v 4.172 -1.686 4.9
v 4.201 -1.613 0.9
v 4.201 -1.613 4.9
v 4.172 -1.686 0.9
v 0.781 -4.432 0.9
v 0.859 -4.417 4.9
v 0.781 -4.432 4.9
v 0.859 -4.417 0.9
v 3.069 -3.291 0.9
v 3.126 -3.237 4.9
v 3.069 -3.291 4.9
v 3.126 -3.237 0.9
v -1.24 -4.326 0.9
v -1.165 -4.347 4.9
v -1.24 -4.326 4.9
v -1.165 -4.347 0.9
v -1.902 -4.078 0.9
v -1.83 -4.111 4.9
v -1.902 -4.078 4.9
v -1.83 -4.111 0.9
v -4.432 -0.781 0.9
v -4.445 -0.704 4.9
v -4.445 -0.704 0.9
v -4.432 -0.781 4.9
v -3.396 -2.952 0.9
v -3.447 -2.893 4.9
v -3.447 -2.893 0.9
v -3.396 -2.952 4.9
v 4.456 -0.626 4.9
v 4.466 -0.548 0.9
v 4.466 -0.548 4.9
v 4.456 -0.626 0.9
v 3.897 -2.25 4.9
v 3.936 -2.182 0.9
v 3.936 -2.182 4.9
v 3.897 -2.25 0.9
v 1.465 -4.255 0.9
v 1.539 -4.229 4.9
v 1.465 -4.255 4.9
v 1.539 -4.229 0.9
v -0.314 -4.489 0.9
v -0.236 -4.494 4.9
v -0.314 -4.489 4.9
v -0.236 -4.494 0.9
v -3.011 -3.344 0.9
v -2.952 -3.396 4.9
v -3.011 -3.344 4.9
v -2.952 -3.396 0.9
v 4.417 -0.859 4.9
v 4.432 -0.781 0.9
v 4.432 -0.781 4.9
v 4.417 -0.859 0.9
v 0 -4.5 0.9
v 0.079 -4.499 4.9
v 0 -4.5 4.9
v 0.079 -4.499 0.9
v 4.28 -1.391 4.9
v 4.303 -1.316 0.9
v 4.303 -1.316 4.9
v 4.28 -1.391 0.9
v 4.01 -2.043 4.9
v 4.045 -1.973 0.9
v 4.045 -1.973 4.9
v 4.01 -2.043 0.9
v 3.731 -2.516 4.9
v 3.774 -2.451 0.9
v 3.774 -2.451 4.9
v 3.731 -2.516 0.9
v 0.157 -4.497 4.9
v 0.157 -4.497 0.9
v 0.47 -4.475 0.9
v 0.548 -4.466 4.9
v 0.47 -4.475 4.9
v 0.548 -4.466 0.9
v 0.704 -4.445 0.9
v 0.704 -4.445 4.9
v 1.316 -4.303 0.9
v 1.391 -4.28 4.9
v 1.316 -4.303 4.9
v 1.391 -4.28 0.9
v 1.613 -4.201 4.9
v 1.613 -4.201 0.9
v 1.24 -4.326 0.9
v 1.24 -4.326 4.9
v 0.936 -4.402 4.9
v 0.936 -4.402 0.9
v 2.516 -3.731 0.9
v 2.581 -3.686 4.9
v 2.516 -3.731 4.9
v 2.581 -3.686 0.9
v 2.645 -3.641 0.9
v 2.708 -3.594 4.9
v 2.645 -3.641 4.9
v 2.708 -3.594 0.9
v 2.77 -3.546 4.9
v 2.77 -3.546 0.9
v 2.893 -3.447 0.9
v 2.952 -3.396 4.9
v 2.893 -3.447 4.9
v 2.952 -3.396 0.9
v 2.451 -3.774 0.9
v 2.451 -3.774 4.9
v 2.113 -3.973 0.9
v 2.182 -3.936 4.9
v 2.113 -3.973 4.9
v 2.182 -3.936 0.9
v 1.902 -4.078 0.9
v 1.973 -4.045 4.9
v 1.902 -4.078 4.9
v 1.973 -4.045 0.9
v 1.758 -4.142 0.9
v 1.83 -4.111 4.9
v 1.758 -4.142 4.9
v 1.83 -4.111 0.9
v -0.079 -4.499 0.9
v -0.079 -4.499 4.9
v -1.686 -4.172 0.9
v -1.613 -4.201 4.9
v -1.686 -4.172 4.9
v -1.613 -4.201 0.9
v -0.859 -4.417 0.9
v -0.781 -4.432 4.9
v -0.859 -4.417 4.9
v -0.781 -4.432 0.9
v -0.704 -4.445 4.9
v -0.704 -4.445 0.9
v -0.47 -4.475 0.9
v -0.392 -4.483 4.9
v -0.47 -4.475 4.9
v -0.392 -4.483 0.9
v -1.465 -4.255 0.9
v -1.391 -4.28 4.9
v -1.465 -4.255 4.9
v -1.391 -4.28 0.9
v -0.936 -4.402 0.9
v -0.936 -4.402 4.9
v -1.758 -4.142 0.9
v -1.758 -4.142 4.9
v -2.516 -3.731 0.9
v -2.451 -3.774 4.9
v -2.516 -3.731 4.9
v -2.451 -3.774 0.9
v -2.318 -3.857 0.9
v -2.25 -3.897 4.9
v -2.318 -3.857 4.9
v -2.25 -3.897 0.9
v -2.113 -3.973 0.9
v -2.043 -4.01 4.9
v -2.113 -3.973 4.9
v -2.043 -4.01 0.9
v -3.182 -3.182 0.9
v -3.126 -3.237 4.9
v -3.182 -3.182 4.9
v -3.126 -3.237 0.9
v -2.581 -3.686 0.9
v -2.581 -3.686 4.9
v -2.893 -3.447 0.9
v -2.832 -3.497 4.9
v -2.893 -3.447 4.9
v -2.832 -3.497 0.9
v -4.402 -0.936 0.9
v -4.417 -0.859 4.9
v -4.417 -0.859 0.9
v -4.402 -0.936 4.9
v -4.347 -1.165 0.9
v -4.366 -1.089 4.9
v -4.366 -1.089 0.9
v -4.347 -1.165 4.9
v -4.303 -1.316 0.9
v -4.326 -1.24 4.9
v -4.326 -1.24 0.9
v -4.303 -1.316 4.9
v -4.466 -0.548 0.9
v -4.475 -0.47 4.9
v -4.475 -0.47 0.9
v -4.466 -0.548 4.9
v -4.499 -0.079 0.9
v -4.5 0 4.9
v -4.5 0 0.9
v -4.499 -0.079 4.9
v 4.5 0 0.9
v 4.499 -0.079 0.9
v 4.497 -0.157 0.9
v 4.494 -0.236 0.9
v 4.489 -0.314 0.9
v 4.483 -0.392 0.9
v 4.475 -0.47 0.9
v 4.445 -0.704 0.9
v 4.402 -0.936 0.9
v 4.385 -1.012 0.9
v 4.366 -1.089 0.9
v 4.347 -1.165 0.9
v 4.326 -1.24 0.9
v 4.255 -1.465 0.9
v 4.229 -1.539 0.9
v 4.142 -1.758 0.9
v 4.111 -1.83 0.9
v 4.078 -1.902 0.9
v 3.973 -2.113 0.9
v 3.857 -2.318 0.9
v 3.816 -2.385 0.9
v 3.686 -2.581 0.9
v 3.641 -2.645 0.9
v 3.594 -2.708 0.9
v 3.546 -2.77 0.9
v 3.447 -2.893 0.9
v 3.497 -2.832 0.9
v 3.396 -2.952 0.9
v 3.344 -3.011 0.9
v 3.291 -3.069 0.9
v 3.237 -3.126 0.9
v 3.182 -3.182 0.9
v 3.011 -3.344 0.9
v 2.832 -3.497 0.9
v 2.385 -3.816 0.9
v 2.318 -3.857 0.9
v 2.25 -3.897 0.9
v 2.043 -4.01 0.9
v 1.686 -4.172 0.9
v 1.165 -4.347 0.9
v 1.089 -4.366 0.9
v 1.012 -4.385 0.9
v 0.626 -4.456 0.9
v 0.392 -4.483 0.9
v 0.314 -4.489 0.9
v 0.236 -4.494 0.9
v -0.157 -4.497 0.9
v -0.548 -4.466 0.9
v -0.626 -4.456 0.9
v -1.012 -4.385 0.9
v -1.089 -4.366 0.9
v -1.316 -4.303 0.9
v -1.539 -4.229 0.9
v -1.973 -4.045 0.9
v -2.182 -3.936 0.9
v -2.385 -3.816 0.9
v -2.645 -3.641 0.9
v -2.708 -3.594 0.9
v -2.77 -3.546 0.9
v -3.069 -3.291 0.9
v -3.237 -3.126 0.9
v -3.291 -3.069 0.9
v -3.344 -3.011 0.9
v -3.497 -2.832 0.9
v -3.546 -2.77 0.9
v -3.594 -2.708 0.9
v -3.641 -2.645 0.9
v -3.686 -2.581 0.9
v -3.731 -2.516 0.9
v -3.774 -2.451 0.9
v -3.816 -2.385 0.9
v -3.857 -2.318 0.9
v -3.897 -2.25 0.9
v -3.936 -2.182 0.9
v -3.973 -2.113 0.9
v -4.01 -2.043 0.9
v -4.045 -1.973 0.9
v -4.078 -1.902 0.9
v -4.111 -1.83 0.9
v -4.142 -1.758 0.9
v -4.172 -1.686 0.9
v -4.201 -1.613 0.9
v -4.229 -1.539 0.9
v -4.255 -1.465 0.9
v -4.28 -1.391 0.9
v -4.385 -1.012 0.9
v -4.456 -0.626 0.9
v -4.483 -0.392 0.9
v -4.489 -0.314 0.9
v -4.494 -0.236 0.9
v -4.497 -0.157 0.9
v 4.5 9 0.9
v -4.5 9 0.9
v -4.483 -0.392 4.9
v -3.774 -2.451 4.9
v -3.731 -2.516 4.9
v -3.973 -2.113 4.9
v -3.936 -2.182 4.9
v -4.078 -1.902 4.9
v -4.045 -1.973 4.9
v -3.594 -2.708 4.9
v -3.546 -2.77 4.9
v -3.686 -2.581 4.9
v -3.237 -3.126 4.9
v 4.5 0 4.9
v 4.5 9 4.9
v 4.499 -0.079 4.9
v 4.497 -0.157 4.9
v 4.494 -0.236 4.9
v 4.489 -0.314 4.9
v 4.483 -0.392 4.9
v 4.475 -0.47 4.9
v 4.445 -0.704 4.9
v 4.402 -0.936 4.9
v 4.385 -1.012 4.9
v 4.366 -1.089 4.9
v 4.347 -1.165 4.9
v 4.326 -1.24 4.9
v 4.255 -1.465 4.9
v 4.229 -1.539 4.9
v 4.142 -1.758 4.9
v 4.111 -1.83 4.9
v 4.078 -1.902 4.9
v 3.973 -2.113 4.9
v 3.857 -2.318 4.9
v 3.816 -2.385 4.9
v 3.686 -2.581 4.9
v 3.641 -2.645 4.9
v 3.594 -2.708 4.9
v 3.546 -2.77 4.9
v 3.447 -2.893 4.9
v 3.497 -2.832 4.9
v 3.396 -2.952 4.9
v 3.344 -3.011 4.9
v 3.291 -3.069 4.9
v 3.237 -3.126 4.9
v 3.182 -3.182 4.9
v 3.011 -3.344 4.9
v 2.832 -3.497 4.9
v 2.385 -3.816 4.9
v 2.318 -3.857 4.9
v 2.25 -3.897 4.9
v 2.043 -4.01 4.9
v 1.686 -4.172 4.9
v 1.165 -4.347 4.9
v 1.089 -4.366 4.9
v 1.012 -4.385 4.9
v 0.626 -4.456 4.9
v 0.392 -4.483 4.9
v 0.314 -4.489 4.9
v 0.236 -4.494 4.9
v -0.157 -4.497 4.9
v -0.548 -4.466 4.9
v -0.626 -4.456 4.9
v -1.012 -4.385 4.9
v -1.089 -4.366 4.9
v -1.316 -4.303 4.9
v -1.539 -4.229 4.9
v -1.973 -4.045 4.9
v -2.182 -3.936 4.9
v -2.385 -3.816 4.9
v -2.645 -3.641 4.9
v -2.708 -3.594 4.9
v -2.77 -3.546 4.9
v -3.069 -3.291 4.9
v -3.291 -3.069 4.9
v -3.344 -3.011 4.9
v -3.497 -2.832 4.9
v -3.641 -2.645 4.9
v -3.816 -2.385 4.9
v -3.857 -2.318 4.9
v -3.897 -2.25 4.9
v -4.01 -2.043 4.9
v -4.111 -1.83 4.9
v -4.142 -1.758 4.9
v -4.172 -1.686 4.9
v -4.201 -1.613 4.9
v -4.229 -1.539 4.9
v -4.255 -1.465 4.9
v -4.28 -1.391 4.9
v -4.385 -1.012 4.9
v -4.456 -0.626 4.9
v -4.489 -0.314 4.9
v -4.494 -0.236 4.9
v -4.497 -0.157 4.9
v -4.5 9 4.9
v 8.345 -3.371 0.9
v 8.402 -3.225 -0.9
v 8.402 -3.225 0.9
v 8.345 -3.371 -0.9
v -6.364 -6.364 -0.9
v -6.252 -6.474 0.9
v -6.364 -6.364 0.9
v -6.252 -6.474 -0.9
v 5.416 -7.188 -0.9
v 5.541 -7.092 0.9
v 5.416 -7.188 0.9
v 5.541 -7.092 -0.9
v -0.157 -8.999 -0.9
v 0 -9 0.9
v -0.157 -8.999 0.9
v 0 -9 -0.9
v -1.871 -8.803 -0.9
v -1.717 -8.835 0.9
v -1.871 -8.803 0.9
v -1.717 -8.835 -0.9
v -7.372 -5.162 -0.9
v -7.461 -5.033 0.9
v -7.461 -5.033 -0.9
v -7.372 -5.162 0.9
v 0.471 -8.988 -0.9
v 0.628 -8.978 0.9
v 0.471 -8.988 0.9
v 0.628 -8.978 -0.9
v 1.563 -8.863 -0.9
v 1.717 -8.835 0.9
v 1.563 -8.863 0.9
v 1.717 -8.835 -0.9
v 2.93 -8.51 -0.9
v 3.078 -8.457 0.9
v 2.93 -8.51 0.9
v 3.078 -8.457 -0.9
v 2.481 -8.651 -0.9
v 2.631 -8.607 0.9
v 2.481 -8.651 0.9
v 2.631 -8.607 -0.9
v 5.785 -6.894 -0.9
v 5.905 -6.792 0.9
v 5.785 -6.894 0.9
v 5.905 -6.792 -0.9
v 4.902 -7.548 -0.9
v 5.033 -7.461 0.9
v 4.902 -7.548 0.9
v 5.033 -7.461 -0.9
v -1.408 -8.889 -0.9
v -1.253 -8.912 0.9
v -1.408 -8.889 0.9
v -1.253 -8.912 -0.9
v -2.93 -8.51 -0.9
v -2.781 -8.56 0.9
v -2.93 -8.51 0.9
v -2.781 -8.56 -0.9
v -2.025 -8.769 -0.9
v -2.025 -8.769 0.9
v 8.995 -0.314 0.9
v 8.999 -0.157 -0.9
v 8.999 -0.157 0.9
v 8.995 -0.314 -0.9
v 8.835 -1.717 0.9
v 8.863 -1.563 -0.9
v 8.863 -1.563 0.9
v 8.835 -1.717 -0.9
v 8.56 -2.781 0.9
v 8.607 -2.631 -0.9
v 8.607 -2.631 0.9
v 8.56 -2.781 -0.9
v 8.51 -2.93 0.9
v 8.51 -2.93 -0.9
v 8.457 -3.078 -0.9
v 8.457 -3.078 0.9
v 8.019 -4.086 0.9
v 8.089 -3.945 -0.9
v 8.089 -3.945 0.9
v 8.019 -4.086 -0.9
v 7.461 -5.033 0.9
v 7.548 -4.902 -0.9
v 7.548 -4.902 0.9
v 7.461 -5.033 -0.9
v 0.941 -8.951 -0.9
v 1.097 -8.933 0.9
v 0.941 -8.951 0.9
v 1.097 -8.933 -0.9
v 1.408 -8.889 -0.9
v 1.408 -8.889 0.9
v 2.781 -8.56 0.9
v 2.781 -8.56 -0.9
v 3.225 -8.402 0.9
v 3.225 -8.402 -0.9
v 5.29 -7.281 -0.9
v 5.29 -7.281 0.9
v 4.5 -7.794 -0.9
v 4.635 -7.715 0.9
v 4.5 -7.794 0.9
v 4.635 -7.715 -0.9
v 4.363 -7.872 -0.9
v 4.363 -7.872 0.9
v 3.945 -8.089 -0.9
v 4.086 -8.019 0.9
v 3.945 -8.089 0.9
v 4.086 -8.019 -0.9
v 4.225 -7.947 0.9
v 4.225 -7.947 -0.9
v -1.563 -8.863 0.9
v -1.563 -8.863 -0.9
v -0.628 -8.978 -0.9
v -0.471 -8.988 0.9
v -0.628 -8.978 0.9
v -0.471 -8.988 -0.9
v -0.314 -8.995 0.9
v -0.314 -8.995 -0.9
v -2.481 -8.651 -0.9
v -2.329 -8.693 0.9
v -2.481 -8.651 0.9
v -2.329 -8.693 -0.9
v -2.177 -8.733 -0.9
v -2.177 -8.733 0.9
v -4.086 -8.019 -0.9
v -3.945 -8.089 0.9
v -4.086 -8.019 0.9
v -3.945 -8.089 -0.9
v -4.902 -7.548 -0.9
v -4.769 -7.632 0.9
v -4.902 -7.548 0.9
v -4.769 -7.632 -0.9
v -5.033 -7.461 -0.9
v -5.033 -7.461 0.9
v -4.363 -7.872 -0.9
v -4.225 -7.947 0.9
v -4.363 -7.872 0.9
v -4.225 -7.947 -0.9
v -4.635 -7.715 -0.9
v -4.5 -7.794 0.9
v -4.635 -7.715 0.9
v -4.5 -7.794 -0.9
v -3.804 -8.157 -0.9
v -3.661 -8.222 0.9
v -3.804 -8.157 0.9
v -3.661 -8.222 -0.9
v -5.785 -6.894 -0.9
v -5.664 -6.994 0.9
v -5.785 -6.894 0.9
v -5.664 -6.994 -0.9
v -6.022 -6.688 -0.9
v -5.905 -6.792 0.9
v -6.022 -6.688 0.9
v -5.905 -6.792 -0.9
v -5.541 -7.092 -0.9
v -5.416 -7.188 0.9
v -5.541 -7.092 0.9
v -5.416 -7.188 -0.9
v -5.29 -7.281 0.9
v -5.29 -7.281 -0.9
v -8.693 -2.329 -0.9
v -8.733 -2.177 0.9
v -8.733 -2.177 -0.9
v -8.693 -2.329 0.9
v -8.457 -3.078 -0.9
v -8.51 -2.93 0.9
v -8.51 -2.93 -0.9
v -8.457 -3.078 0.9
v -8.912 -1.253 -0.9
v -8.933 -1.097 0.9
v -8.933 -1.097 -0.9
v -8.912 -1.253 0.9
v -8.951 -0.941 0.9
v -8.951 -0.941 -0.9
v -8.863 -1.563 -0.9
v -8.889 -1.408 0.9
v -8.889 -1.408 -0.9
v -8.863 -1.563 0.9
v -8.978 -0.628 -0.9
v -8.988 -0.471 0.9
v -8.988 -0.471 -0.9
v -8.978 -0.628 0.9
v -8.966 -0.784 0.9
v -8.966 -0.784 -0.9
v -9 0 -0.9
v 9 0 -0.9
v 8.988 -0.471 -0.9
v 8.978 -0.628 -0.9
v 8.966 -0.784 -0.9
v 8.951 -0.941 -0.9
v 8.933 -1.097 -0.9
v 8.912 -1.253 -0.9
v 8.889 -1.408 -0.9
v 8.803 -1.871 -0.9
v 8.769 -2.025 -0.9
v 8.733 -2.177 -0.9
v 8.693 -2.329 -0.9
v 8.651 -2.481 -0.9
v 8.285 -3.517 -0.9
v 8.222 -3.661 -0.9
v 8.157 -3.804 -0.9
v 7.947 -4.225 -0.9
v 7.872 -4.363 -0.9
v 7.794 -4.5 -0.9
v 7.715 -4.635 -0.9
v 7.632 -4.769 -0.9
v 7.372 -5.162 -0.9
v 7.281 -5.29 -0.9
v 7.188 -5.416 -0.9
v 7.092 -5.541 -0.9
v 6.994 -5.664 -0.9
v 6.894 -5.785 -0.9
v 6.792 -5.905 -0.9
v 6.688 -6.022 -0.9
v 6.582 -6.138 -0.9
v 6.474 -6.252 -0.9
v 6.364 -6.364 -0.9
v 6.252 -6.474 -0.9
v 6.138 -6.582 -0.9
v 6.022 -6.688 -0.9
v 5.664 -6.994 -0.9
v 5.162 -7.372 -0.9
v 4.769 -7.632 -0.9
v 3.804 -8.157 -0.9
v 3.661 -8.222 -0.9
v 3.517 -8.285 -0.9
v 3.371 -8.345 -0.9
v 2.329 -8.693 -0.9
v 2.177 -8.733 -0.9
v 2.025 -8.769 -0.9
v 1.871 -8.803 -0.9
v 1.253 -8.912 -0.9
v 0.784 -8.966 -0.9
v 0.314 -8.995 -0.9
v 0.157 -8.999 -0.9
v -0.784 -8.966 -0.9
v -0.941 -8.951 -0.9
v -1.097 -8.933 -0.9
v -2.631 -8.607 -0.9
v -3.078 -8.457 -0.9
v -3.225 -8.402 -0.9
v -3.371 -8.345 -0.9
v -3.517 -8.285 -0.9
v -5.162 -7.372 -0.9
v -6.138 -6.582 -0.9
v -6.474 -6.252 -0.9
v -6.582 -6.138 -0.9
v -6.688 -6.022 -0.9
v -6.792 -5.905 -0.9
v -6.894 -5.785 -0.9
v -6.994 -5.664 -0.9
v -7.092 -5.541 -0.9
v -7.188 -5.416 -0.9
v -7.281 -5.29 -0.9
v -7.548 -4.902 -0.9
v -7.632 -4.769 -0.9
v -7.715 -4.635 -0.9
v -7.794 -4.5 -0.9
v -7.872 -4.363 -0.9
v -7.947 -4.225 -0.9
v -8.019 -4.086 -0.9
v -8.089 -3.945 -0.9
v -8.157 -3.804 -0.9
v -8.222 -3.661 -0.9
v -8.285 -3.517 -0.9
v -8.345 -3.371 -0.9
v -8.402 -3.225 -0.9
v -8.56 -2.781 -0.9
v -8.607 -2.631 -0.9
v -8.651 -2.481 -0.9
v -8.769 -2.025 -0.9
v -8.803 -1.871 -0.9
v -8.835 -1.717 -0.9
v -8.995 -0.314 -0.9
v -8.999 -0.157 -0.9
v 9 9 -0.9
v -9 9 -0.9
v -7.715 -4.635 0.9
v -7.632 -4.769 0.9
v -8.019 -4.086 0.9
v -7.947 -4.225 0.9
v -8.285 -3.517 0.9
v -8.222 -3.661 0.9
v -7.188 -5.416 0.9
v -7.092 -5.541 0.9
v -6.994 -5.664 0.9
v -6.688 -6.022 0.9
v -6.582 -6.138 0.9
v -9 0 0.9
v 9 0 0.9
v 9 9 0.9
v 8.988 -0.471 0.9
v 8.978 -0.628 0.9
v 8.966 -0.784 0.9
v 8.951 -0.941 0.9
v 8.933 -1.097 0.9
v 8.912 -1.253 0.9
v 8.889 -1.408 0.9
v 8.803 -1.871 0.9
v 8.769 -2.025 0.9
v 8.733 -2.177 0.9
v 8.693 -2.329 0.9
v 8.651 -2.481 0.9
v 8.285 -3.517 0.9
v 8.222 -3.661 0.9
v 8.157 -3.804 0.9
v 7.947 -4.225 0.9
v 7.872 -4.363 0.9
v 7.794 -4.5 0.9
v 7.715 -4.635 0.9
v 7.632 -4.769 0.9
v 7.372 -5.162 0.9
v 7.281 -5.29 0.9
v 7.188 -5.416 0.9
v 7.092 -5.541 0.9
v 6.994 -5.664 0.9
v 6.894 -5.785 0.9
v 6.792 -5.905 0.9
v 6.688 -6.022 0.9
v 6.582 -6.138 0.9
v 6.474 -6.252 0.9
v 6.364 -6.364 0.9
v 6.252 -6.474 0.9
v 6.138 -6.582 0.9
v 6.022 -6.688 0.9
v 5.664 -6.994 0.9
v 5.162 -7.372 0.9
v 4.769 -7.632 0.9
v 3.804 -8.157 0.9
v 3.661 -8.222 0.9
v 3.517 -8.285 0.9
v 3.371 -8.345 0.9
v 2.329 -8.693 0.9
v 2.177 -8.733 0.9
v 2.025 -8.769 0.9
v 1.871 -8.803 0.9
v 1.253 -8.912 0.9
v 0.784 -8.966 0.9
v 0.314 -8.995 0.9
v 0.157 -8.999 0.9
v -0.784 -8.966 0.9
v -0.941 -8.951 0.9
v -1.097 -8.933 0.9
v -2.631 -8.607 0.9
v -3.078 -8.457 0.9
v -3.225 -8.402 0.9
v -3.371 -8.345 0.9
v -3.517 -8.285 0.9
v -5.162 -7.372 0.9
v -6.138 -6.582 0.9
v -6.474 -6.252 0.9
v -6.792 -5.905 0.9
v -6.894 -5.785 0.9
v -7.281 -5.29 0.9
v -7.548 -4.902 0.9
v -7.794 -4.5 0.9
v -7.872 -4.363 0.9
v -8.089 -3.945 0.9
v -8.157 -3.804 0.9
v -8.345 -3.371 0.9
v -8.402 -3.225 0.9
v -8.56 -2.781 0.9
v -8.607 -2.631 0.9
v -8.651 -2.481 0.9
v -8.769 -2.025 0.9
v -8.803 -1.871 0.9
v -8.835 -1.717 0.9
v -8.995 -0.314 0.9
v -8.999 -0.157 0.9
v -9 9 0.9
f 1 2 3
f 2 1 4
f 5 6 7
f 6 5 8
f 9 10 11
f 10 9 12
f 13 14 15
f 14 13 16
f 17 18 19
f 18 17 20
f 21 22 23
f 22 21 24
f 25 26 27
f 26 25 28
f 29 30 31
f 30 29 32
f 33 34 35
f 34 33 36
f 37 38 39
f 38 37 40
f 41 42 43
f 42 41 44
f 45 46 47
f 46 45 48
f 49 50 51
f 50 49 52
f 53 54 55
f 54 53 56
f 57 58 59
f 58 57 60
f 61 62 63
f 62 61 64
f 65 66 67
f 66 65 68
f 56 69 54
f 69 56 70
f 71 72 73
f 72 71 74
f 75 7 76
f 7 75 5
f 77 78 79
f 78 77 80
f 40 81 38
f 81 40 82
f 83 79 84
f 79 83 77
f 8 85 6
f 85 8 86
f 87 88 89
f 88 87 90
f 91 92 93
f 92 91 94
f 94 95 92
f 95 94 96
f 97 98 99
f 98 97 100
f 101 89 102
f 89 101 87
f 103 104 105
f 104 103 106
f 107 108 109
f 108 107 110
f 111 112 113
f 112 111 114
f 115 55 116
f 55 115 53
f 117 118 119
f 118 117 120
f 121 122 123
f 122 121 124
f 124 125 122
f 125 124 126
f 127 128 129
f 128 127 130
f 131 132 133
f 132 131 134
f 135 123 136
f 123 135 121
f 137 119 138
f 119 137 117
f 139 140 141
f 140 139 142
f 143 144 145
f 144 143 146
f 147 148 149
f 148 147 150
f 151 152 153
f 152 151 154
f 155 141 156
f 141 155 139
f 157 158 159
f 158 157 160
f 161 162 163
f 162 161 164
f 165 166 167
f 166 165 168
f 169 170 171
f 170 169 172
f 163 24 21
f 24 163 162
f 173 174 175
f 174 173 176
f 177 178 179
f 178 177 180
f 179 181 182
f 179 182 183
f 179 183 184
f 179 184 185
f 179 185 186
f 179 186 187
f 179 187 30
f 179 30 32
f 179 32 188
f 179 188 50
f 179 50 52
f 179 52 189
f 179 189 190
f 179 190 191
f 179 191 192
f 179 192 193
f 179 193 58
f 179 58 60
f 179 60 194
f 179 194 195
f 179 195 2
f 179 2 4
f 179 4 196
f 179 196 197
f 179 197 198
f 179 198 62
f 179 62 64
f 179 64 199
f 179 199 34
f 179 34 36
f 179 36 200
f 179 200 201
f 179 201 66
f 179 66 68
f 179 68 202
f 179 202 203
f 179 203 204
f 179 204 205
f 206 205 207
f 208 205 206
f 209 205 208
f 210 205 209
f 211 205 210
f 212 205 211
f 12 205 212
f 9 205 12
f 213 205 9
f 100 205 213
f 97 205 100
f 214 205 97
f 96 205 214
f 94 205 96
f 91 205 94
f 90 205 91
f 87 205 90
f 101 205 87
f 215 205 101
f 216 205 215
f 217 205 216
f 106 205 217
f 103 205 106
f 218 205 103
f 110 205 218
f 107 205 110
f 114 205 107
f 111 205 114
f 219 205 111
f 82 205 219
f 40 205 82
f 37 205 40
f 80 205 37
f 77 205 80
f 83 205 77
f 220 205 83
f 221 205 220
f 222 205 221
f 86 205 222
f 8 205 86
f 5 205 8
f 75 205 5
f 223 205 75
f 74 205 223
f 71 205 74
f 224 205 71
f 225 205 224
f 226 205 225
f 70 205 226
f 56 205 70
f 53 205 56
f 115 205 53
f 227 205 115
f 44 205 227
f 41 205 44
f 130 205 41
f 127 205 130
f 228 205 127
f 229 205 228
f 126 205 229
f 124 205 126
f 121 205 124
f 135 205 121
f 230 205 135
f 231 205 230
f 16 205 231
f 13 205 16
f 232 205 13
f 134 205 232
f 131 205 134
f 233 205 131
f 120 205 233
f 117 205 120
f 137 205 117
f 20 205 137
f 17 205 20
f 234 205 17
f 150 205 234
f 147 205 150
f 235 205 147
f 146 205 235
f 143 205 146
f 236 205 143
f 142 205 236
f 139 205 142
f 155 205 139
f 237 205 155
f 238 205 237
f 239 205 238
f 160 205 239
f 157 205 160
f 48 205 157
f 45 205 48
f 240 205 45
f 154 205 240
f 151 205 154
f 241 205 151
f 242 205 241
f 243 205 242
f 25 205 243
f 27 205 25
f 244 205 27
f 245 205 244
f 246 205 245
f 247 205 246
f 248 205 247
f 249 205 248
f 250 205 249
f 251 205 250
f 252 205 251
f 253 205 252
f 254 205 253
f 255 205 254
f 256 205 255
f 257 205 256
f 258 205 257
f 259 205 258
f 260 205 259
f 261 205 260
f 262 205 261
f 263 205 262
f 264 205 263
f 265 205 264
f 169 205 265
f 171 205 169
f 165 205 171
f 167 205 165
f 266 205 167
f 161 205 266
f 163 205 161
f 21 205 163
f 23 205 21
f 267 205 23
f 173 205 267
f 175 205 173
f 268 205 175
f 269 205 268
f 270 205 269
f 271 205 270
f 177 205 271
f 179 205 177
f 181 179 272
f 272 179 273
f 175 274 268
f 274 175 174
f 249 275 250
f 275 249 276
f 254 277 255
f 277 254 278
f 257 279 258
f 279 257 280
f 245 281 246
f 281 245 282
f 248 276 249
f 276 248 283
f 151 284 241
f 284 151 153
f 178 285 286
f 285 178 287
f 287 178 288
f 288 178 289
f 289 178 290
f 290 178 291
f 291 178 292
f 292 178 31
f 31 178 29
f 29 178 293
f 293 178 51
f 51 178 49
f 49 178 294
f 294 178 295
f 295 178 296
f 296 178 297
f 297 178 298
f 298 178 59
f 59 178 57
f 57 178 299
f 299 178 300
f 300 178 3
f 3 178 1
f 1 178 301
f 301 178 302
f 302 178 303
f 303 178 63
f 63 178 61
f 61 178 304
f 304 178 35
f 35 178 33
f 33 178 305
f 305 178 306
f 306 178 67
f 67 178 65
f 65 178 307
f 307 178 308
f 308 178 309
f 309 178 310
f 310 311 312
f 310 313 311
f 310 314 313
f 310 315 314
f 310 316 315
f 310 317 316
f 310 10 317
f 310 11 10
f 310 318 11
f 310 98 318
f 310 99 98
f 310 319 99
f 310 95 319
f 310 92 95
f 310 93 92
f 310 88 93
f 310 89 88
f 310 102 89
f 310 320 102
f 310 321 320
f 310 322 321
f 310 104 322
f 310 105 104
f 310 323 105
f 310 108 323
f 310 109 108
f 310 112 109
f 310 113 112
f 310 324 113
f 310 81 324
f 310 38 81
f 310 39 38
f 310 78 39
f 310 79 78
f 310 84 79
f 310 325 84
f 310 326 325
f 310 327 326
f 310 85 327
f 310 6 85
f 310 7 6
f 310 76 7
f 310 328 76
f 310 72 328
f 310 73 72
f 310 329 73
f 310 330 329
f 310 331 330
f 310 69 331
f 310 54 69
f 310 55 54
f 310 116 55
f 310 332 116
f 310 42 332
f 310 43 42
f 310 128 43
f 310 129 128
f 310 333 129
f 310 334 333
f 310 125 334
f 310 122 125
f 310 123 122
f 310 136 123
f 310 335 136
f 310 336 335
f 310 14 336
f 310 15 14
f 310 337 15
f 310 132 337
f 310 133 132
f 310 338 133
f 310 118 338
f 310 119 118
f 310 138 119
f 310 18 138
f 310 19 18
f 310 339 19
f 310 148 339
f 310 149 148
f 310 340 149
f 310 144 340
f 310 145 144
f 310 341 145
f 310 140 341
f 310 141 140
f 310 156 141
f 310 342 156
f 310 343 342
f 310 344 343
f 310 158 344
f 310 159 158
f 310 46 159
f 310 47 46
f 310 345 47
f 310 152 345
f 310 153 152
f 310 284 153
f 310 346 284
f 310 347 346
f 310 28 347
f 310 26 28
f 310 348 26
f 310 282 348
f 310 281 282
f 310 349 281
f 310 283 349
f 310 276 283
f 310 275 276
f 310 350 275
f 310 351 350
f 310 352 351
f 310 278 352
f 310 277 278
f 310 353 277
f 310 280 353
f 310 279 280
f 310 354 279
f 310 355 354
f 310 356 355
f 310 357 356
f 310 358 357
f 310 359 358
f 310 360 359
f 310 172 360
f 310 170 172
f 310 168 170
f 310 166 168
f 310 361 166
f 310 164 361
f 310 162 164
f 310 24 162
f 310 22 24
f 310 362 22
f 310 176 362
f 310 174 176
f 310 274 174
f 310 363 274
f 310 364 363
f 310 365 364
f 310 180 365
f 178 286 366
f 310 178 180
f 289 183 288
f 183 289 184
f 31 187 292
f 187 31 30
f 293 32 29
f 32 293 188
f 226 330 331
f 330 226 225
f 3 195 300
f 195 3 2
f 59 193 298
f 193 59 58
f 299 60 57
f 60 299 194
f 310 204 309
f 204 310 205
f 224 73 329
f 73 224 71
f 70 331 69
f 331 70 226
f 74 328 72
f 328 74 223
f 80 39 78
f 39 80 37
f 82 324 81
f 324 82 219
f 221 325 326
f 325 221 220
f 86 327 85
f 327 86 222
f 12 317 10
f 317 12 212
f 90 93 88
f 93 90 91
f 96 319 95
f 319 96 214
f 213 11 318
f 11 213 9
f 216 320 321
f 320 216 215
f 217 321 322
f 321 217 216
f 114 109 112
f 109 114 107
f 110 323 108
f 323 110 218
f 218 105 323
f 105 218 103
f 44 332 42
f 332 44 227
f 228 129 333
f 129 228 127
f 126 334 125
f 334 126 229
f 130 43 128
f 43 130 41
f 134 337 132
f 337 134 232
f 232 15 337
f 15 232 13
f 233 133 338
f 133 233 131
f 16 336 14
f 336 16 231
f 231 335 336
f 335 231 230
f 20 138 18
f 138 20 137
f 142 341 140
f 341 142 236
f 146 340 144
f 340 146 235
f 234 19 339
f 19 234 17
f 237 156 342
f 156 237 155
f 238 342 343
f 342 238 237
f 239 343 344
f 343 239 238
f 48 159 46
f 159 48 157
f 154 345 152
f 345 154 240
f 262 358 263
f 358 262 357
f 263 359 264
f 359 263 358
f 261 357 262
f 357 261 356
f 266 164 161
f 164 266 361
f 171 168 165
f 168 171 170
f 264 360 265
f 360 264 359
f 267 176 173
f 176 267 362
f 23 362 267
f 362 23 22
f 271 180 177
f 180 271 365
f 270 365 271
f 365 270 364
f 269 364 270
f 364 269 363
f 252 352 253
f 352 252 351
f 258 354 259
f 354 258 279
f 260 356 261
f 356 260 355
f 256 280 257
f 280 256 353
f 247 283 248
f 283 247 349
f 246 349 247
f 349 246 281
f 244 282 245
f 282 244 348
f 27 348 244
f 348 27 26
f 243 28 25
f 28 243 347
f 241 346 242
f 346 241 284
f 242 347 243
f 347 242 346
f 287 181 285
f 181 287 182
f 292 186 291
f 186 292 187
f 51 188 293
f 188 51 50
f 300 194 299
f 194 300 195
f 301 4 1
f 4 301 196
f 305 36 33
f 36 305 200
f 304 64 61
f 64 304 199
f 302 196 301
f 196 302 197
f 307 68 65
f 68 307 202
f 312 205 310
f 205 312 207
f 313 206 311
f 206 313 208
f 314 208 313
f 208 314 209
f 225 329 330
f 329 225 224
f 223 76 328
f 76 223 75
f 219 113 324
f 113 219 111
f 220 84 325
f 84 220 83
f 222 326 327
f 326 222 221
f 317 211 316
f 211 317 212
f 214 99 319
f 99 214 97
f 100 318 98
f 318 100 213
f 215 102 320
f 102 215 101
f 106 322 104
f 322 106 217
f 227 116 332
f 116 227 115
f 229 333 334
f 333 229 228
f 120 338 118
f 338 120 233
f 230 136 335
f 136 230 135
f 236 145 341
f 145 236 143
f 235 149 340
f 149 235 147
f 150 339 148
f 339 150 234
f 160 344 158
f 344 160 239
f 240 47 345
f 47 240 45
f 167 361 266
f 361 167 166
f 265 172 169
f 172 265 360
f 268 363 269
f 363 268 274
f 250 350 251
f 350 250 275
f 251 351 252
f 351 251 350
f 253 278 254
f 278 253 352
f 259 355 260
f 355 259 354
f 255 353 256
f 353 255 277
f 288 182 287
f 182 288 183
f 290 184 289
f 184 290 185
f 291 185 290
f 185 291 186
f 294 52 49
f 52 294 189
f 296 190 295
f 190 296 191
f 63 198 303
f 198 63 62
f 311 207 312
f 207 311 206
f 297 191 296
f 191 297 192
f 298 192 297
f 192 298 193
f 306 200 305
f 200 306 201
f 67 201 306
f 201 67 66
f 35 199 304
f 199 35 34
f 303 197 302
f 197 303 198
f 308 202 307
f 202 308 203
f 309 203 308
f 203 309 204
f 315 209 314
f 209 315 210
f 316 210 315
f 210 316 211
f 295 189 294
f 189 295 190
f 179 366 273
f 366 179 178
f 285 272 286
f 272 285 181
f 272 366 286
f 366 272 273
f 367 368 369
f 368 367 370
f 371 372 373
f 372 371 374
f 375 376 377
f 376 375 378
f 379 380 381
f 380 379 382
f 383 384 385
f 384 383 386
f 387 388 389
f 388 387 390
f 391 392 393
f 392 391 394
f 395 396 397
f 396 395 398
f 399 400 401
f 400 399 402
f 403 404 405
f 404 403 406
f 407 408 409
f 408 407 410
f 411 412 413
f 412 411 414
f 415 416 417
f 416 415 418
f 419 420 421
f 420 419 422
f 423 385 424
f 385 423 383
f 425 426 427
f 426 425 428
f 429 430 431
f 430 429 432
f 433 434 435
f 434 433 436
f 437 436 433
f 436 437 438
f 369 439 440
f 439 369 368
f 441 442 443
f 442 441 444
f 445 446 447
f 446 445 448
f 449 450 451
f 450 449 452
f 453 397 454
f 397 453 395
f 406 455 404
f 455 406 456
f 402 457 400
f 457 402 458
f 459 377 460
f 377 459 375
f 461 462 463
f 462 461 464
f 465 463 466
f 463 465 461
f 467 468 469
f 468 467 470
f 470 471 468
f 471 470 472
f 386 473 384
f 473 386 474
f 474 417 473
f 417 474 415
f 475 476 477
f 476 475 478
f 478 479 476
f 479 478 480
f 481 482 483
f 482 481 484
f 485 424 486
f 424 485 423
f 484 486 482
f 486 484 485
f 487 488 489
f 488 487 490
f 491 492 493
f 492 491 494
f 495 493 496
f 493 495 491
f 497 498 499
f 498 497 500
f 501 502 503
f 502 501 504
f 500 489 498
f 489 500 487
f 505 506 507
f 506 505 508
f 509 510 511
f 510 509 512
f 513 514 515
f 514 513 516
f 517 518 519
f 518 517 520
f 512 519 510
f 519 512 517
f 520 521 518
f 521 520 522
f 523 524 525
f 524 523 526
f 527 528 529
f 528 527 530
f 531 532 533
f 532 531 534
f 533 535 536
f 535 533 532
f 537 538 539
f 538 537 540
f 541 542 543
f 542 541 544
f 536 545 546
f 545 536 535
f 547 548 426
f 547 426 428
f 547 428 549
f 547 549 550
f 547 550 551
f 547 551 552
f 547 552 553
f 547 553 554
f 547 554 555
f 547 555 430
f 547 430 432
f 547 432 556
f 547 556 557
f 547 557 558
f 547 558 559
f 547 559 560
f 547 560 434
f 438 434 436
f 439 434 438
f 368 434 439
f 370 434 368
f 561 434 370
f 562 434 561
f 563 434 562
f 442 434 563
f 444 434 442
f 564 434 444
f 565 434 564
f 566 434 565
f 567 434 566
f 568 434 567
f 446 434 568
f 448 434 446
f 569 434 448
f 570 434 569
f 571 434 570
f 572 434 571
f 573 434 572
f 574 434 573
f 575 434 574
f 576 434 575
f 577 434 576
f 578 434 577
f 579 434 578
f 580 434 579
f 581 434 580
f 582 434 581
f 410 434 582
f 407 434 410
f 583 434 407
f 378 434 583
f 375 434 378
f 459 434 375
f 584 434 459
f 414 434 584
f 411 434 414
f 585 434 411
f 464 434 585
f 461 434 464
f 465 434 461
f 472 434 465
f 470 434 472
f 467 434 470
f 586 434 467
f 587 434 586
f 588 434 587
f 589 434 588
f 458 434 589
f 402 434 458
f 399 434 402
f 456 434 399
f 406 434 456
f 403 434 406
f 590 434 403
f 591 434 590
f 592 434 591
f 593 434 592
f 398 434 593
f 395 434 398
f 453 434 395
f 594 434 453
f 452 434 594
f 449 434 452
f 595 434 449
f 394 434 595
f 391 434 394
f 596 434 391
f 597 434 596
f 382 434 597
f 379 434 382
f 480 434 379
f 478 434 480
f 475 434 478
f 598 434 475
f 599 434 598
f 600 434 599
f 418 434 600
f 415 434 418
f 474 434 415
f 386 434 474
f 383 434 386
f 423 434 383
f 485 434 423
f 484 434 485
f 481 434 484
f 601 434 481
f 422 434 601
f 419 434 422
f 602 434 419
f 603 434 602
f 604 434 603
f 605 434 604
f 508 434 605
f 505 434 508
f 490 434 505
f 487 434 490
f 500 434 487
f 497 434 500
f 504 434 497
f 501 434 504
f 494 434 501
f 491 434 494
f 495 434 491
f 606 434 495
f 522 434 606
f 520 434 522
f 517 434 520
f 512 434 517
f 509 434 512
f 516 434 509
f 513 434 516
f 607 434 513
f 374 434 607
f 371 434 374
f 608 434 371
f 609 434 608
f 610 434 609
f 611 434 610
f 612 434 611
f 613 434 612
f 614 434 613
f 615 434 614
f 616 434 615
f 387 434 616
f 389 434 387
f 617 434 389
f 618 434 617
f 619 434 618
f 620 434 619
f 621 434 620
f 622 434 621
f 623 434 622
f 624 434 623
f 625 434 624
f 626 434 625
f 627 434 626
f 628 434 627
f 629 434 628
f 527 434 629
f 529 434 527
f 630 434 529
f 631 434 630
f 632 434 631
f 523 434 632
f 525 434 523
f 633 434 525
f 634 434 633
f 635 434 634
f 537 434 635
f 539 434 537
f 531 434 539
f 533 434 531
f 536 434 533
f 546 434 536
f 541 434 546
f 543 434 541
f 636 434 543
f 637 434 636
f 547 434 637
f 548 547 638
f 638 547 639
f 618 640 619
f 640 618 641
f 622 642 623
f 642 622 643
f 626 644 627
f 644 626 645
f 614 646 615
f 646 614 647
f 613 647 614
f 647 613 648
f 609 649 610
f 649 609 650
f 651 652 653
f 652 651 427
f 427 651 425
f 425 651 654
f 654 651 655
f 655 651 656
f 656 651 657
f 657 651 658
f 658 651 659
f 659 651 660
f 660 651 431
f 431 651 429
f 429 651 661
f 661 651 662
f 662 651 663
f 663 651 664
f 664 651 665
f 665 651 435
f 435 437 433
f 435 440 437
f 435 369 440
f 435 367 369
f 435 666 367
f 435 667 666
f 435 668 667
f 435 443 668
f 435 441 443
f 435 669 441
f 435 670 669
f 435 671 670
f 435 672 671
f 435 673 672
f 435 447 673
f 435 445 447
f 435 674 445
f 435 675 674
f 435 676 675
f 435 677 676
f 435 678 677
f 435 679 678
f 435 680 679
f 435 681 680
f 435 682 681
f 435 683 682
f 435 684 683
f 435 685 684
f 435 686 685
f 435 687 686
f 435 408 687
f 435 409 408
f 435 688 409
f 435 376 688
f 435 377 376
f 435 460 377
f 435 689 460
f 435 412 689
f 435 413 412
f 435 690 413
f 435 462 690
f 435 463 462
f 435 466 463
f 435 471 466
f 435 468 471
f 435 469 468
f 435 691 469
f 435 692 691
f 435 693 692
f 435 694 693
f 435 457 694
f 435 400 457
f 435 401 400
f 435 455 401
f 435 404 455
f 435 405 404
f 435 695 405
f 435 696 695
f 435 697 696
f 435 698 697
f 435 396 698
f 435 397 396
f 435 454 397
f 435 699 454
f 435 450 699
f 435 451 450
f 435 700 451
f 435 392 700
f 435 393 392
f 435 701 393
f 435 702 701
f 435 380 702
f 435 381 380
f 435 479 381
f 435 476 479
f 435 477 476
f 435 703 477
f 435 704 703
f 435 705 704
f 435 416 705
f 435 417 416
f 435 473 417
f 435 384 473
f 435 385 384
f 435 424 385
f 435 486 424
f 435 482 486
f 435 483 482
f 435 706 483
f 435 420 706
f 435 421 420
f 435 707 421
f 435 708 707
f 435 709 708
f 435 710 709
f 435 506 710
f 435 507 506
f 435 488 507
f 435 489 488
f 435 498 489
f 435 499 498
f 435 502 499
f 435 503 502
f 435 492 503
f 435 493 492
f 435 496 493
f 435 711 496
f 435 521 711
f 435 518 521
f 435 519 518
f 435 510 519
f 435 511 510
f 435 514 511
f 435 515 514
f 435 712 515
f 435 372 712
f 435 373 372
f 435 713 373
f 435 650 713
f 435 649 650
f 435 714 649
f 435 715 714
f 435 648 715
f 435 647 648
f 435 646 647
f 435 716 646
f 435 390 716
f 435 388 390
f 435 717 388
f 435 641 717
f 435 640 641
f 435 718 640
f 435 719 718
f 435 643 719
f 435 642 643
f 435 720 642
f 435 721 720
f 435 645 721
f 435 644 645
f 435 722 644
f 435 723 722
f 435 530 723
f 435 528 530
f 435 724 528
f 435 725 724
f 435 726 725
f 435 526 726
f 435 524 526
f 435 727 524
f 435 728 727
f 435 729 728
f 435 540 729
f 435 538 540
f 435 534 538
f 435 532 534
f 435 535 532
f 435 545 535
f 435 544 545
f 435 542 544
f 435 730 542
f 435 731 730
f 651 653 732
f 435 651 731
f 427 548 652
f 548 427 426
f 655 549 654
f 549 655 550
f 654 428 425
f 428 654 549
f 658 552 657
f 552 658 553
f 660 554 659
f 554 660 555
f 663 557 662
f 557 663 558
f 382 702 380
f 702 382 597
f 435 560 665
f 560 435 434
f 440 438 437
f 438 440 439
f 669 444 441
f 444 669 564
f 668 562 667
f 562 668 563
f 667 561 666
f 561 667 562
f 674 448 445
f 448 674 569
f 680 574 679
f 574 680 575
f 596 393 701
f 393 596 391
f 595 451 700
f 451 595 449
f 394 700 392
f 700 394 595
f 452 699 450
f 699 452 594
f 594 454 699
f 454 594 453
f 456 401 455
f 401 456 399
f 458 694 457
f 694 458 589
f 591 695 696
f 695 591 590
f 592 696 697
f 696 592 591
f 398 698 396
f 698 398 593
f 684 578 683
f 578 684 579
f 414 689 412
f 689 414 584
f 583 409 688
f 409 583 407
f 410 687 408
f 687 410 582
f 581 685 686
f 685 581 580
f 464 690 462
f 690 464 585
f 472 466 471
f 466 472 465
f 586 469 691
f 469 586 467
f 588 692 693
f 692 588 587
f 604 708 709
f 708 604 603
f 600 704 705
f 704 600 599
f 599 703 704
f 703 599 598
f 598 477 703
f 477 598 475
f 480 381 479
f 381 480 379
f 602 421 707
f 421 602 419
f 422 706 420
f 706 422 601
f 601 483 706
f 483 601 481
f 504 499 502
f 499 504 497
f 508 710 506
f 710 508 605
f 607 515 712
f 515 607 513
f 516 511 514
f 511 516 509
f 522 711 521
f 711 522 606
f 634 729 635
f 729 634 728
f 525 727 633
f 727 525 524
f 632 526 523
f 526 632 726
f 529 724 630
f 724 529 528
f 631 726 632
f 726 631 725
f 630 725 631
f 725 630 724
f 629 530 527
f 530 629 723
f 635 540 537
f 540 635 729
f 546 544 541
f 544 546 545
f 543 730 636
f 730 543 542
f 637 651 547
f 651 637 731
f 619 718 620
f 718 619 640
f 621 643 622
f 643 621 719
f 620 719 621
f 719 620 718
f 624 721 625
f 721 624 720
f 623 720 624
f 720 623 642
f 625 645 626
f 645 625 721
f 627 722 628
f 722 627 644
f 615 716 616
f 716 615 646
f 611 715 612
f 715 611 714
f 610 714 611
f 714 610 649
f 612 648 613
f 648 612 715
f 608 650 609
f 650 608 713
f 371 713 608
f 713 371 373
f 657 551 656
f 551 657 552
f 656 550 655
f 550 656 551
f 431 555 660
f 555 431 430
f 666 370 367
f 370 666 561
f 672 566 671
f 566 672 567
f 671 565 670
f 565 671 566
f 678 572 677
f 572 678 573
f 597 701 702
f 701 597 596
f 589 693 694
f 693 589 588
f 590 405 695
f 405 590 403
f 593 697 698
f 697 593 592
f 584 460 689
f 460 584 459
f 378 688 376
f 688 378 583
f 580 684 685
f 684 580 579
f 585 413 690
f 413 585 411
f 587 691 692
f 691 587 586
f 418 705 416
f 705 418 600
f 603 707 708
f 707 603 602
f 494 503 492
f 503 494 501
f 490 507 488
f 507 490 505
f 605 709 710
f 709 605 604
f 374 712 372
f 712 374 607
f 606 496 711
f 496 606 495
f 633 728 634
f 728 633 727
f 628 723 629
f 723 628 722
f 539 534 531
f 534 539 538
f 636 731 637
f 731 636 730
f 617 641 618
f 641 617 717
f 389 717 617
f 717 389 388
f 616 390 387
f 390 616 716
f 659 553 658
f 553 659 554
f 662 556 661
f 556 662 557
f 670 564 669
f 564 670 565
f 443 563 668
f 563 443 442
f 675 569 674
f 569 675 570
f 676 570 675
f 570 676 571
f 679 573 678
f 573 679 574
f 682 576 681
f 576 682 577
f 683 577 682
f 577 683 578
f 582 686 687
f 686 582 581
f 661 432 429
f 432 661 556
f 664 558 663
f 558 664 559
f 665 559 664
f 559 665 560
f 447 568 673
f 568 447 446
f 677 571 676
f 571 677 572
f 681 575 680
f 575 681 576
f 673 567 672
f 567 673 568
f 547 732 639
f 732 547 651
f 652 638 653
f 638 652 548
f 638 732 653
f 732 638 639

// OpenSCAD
$fn=360;

clip_or = 18/2;
clip_ir = 9/2;
clip_out_h = 1.8;
clip_in_h = 4;
clip_top_h = 2.8;

cylinder(r=clip_or,h=clip_out_h,center=true);
translate([0,clip_or/2,0])
    cube([clip_or*2,clip_or,clip_out_h],center=true);
translate ([0,0,clip_out_h/2+clip_in_h/2])
    union() { 
         cylinder(r=clip_ir,h=clip_in_h,center=true);
translate([0,clip_or/2,0])
    cube([clip_ir*2,clip_or,clip_in_h],center=true);
    };
